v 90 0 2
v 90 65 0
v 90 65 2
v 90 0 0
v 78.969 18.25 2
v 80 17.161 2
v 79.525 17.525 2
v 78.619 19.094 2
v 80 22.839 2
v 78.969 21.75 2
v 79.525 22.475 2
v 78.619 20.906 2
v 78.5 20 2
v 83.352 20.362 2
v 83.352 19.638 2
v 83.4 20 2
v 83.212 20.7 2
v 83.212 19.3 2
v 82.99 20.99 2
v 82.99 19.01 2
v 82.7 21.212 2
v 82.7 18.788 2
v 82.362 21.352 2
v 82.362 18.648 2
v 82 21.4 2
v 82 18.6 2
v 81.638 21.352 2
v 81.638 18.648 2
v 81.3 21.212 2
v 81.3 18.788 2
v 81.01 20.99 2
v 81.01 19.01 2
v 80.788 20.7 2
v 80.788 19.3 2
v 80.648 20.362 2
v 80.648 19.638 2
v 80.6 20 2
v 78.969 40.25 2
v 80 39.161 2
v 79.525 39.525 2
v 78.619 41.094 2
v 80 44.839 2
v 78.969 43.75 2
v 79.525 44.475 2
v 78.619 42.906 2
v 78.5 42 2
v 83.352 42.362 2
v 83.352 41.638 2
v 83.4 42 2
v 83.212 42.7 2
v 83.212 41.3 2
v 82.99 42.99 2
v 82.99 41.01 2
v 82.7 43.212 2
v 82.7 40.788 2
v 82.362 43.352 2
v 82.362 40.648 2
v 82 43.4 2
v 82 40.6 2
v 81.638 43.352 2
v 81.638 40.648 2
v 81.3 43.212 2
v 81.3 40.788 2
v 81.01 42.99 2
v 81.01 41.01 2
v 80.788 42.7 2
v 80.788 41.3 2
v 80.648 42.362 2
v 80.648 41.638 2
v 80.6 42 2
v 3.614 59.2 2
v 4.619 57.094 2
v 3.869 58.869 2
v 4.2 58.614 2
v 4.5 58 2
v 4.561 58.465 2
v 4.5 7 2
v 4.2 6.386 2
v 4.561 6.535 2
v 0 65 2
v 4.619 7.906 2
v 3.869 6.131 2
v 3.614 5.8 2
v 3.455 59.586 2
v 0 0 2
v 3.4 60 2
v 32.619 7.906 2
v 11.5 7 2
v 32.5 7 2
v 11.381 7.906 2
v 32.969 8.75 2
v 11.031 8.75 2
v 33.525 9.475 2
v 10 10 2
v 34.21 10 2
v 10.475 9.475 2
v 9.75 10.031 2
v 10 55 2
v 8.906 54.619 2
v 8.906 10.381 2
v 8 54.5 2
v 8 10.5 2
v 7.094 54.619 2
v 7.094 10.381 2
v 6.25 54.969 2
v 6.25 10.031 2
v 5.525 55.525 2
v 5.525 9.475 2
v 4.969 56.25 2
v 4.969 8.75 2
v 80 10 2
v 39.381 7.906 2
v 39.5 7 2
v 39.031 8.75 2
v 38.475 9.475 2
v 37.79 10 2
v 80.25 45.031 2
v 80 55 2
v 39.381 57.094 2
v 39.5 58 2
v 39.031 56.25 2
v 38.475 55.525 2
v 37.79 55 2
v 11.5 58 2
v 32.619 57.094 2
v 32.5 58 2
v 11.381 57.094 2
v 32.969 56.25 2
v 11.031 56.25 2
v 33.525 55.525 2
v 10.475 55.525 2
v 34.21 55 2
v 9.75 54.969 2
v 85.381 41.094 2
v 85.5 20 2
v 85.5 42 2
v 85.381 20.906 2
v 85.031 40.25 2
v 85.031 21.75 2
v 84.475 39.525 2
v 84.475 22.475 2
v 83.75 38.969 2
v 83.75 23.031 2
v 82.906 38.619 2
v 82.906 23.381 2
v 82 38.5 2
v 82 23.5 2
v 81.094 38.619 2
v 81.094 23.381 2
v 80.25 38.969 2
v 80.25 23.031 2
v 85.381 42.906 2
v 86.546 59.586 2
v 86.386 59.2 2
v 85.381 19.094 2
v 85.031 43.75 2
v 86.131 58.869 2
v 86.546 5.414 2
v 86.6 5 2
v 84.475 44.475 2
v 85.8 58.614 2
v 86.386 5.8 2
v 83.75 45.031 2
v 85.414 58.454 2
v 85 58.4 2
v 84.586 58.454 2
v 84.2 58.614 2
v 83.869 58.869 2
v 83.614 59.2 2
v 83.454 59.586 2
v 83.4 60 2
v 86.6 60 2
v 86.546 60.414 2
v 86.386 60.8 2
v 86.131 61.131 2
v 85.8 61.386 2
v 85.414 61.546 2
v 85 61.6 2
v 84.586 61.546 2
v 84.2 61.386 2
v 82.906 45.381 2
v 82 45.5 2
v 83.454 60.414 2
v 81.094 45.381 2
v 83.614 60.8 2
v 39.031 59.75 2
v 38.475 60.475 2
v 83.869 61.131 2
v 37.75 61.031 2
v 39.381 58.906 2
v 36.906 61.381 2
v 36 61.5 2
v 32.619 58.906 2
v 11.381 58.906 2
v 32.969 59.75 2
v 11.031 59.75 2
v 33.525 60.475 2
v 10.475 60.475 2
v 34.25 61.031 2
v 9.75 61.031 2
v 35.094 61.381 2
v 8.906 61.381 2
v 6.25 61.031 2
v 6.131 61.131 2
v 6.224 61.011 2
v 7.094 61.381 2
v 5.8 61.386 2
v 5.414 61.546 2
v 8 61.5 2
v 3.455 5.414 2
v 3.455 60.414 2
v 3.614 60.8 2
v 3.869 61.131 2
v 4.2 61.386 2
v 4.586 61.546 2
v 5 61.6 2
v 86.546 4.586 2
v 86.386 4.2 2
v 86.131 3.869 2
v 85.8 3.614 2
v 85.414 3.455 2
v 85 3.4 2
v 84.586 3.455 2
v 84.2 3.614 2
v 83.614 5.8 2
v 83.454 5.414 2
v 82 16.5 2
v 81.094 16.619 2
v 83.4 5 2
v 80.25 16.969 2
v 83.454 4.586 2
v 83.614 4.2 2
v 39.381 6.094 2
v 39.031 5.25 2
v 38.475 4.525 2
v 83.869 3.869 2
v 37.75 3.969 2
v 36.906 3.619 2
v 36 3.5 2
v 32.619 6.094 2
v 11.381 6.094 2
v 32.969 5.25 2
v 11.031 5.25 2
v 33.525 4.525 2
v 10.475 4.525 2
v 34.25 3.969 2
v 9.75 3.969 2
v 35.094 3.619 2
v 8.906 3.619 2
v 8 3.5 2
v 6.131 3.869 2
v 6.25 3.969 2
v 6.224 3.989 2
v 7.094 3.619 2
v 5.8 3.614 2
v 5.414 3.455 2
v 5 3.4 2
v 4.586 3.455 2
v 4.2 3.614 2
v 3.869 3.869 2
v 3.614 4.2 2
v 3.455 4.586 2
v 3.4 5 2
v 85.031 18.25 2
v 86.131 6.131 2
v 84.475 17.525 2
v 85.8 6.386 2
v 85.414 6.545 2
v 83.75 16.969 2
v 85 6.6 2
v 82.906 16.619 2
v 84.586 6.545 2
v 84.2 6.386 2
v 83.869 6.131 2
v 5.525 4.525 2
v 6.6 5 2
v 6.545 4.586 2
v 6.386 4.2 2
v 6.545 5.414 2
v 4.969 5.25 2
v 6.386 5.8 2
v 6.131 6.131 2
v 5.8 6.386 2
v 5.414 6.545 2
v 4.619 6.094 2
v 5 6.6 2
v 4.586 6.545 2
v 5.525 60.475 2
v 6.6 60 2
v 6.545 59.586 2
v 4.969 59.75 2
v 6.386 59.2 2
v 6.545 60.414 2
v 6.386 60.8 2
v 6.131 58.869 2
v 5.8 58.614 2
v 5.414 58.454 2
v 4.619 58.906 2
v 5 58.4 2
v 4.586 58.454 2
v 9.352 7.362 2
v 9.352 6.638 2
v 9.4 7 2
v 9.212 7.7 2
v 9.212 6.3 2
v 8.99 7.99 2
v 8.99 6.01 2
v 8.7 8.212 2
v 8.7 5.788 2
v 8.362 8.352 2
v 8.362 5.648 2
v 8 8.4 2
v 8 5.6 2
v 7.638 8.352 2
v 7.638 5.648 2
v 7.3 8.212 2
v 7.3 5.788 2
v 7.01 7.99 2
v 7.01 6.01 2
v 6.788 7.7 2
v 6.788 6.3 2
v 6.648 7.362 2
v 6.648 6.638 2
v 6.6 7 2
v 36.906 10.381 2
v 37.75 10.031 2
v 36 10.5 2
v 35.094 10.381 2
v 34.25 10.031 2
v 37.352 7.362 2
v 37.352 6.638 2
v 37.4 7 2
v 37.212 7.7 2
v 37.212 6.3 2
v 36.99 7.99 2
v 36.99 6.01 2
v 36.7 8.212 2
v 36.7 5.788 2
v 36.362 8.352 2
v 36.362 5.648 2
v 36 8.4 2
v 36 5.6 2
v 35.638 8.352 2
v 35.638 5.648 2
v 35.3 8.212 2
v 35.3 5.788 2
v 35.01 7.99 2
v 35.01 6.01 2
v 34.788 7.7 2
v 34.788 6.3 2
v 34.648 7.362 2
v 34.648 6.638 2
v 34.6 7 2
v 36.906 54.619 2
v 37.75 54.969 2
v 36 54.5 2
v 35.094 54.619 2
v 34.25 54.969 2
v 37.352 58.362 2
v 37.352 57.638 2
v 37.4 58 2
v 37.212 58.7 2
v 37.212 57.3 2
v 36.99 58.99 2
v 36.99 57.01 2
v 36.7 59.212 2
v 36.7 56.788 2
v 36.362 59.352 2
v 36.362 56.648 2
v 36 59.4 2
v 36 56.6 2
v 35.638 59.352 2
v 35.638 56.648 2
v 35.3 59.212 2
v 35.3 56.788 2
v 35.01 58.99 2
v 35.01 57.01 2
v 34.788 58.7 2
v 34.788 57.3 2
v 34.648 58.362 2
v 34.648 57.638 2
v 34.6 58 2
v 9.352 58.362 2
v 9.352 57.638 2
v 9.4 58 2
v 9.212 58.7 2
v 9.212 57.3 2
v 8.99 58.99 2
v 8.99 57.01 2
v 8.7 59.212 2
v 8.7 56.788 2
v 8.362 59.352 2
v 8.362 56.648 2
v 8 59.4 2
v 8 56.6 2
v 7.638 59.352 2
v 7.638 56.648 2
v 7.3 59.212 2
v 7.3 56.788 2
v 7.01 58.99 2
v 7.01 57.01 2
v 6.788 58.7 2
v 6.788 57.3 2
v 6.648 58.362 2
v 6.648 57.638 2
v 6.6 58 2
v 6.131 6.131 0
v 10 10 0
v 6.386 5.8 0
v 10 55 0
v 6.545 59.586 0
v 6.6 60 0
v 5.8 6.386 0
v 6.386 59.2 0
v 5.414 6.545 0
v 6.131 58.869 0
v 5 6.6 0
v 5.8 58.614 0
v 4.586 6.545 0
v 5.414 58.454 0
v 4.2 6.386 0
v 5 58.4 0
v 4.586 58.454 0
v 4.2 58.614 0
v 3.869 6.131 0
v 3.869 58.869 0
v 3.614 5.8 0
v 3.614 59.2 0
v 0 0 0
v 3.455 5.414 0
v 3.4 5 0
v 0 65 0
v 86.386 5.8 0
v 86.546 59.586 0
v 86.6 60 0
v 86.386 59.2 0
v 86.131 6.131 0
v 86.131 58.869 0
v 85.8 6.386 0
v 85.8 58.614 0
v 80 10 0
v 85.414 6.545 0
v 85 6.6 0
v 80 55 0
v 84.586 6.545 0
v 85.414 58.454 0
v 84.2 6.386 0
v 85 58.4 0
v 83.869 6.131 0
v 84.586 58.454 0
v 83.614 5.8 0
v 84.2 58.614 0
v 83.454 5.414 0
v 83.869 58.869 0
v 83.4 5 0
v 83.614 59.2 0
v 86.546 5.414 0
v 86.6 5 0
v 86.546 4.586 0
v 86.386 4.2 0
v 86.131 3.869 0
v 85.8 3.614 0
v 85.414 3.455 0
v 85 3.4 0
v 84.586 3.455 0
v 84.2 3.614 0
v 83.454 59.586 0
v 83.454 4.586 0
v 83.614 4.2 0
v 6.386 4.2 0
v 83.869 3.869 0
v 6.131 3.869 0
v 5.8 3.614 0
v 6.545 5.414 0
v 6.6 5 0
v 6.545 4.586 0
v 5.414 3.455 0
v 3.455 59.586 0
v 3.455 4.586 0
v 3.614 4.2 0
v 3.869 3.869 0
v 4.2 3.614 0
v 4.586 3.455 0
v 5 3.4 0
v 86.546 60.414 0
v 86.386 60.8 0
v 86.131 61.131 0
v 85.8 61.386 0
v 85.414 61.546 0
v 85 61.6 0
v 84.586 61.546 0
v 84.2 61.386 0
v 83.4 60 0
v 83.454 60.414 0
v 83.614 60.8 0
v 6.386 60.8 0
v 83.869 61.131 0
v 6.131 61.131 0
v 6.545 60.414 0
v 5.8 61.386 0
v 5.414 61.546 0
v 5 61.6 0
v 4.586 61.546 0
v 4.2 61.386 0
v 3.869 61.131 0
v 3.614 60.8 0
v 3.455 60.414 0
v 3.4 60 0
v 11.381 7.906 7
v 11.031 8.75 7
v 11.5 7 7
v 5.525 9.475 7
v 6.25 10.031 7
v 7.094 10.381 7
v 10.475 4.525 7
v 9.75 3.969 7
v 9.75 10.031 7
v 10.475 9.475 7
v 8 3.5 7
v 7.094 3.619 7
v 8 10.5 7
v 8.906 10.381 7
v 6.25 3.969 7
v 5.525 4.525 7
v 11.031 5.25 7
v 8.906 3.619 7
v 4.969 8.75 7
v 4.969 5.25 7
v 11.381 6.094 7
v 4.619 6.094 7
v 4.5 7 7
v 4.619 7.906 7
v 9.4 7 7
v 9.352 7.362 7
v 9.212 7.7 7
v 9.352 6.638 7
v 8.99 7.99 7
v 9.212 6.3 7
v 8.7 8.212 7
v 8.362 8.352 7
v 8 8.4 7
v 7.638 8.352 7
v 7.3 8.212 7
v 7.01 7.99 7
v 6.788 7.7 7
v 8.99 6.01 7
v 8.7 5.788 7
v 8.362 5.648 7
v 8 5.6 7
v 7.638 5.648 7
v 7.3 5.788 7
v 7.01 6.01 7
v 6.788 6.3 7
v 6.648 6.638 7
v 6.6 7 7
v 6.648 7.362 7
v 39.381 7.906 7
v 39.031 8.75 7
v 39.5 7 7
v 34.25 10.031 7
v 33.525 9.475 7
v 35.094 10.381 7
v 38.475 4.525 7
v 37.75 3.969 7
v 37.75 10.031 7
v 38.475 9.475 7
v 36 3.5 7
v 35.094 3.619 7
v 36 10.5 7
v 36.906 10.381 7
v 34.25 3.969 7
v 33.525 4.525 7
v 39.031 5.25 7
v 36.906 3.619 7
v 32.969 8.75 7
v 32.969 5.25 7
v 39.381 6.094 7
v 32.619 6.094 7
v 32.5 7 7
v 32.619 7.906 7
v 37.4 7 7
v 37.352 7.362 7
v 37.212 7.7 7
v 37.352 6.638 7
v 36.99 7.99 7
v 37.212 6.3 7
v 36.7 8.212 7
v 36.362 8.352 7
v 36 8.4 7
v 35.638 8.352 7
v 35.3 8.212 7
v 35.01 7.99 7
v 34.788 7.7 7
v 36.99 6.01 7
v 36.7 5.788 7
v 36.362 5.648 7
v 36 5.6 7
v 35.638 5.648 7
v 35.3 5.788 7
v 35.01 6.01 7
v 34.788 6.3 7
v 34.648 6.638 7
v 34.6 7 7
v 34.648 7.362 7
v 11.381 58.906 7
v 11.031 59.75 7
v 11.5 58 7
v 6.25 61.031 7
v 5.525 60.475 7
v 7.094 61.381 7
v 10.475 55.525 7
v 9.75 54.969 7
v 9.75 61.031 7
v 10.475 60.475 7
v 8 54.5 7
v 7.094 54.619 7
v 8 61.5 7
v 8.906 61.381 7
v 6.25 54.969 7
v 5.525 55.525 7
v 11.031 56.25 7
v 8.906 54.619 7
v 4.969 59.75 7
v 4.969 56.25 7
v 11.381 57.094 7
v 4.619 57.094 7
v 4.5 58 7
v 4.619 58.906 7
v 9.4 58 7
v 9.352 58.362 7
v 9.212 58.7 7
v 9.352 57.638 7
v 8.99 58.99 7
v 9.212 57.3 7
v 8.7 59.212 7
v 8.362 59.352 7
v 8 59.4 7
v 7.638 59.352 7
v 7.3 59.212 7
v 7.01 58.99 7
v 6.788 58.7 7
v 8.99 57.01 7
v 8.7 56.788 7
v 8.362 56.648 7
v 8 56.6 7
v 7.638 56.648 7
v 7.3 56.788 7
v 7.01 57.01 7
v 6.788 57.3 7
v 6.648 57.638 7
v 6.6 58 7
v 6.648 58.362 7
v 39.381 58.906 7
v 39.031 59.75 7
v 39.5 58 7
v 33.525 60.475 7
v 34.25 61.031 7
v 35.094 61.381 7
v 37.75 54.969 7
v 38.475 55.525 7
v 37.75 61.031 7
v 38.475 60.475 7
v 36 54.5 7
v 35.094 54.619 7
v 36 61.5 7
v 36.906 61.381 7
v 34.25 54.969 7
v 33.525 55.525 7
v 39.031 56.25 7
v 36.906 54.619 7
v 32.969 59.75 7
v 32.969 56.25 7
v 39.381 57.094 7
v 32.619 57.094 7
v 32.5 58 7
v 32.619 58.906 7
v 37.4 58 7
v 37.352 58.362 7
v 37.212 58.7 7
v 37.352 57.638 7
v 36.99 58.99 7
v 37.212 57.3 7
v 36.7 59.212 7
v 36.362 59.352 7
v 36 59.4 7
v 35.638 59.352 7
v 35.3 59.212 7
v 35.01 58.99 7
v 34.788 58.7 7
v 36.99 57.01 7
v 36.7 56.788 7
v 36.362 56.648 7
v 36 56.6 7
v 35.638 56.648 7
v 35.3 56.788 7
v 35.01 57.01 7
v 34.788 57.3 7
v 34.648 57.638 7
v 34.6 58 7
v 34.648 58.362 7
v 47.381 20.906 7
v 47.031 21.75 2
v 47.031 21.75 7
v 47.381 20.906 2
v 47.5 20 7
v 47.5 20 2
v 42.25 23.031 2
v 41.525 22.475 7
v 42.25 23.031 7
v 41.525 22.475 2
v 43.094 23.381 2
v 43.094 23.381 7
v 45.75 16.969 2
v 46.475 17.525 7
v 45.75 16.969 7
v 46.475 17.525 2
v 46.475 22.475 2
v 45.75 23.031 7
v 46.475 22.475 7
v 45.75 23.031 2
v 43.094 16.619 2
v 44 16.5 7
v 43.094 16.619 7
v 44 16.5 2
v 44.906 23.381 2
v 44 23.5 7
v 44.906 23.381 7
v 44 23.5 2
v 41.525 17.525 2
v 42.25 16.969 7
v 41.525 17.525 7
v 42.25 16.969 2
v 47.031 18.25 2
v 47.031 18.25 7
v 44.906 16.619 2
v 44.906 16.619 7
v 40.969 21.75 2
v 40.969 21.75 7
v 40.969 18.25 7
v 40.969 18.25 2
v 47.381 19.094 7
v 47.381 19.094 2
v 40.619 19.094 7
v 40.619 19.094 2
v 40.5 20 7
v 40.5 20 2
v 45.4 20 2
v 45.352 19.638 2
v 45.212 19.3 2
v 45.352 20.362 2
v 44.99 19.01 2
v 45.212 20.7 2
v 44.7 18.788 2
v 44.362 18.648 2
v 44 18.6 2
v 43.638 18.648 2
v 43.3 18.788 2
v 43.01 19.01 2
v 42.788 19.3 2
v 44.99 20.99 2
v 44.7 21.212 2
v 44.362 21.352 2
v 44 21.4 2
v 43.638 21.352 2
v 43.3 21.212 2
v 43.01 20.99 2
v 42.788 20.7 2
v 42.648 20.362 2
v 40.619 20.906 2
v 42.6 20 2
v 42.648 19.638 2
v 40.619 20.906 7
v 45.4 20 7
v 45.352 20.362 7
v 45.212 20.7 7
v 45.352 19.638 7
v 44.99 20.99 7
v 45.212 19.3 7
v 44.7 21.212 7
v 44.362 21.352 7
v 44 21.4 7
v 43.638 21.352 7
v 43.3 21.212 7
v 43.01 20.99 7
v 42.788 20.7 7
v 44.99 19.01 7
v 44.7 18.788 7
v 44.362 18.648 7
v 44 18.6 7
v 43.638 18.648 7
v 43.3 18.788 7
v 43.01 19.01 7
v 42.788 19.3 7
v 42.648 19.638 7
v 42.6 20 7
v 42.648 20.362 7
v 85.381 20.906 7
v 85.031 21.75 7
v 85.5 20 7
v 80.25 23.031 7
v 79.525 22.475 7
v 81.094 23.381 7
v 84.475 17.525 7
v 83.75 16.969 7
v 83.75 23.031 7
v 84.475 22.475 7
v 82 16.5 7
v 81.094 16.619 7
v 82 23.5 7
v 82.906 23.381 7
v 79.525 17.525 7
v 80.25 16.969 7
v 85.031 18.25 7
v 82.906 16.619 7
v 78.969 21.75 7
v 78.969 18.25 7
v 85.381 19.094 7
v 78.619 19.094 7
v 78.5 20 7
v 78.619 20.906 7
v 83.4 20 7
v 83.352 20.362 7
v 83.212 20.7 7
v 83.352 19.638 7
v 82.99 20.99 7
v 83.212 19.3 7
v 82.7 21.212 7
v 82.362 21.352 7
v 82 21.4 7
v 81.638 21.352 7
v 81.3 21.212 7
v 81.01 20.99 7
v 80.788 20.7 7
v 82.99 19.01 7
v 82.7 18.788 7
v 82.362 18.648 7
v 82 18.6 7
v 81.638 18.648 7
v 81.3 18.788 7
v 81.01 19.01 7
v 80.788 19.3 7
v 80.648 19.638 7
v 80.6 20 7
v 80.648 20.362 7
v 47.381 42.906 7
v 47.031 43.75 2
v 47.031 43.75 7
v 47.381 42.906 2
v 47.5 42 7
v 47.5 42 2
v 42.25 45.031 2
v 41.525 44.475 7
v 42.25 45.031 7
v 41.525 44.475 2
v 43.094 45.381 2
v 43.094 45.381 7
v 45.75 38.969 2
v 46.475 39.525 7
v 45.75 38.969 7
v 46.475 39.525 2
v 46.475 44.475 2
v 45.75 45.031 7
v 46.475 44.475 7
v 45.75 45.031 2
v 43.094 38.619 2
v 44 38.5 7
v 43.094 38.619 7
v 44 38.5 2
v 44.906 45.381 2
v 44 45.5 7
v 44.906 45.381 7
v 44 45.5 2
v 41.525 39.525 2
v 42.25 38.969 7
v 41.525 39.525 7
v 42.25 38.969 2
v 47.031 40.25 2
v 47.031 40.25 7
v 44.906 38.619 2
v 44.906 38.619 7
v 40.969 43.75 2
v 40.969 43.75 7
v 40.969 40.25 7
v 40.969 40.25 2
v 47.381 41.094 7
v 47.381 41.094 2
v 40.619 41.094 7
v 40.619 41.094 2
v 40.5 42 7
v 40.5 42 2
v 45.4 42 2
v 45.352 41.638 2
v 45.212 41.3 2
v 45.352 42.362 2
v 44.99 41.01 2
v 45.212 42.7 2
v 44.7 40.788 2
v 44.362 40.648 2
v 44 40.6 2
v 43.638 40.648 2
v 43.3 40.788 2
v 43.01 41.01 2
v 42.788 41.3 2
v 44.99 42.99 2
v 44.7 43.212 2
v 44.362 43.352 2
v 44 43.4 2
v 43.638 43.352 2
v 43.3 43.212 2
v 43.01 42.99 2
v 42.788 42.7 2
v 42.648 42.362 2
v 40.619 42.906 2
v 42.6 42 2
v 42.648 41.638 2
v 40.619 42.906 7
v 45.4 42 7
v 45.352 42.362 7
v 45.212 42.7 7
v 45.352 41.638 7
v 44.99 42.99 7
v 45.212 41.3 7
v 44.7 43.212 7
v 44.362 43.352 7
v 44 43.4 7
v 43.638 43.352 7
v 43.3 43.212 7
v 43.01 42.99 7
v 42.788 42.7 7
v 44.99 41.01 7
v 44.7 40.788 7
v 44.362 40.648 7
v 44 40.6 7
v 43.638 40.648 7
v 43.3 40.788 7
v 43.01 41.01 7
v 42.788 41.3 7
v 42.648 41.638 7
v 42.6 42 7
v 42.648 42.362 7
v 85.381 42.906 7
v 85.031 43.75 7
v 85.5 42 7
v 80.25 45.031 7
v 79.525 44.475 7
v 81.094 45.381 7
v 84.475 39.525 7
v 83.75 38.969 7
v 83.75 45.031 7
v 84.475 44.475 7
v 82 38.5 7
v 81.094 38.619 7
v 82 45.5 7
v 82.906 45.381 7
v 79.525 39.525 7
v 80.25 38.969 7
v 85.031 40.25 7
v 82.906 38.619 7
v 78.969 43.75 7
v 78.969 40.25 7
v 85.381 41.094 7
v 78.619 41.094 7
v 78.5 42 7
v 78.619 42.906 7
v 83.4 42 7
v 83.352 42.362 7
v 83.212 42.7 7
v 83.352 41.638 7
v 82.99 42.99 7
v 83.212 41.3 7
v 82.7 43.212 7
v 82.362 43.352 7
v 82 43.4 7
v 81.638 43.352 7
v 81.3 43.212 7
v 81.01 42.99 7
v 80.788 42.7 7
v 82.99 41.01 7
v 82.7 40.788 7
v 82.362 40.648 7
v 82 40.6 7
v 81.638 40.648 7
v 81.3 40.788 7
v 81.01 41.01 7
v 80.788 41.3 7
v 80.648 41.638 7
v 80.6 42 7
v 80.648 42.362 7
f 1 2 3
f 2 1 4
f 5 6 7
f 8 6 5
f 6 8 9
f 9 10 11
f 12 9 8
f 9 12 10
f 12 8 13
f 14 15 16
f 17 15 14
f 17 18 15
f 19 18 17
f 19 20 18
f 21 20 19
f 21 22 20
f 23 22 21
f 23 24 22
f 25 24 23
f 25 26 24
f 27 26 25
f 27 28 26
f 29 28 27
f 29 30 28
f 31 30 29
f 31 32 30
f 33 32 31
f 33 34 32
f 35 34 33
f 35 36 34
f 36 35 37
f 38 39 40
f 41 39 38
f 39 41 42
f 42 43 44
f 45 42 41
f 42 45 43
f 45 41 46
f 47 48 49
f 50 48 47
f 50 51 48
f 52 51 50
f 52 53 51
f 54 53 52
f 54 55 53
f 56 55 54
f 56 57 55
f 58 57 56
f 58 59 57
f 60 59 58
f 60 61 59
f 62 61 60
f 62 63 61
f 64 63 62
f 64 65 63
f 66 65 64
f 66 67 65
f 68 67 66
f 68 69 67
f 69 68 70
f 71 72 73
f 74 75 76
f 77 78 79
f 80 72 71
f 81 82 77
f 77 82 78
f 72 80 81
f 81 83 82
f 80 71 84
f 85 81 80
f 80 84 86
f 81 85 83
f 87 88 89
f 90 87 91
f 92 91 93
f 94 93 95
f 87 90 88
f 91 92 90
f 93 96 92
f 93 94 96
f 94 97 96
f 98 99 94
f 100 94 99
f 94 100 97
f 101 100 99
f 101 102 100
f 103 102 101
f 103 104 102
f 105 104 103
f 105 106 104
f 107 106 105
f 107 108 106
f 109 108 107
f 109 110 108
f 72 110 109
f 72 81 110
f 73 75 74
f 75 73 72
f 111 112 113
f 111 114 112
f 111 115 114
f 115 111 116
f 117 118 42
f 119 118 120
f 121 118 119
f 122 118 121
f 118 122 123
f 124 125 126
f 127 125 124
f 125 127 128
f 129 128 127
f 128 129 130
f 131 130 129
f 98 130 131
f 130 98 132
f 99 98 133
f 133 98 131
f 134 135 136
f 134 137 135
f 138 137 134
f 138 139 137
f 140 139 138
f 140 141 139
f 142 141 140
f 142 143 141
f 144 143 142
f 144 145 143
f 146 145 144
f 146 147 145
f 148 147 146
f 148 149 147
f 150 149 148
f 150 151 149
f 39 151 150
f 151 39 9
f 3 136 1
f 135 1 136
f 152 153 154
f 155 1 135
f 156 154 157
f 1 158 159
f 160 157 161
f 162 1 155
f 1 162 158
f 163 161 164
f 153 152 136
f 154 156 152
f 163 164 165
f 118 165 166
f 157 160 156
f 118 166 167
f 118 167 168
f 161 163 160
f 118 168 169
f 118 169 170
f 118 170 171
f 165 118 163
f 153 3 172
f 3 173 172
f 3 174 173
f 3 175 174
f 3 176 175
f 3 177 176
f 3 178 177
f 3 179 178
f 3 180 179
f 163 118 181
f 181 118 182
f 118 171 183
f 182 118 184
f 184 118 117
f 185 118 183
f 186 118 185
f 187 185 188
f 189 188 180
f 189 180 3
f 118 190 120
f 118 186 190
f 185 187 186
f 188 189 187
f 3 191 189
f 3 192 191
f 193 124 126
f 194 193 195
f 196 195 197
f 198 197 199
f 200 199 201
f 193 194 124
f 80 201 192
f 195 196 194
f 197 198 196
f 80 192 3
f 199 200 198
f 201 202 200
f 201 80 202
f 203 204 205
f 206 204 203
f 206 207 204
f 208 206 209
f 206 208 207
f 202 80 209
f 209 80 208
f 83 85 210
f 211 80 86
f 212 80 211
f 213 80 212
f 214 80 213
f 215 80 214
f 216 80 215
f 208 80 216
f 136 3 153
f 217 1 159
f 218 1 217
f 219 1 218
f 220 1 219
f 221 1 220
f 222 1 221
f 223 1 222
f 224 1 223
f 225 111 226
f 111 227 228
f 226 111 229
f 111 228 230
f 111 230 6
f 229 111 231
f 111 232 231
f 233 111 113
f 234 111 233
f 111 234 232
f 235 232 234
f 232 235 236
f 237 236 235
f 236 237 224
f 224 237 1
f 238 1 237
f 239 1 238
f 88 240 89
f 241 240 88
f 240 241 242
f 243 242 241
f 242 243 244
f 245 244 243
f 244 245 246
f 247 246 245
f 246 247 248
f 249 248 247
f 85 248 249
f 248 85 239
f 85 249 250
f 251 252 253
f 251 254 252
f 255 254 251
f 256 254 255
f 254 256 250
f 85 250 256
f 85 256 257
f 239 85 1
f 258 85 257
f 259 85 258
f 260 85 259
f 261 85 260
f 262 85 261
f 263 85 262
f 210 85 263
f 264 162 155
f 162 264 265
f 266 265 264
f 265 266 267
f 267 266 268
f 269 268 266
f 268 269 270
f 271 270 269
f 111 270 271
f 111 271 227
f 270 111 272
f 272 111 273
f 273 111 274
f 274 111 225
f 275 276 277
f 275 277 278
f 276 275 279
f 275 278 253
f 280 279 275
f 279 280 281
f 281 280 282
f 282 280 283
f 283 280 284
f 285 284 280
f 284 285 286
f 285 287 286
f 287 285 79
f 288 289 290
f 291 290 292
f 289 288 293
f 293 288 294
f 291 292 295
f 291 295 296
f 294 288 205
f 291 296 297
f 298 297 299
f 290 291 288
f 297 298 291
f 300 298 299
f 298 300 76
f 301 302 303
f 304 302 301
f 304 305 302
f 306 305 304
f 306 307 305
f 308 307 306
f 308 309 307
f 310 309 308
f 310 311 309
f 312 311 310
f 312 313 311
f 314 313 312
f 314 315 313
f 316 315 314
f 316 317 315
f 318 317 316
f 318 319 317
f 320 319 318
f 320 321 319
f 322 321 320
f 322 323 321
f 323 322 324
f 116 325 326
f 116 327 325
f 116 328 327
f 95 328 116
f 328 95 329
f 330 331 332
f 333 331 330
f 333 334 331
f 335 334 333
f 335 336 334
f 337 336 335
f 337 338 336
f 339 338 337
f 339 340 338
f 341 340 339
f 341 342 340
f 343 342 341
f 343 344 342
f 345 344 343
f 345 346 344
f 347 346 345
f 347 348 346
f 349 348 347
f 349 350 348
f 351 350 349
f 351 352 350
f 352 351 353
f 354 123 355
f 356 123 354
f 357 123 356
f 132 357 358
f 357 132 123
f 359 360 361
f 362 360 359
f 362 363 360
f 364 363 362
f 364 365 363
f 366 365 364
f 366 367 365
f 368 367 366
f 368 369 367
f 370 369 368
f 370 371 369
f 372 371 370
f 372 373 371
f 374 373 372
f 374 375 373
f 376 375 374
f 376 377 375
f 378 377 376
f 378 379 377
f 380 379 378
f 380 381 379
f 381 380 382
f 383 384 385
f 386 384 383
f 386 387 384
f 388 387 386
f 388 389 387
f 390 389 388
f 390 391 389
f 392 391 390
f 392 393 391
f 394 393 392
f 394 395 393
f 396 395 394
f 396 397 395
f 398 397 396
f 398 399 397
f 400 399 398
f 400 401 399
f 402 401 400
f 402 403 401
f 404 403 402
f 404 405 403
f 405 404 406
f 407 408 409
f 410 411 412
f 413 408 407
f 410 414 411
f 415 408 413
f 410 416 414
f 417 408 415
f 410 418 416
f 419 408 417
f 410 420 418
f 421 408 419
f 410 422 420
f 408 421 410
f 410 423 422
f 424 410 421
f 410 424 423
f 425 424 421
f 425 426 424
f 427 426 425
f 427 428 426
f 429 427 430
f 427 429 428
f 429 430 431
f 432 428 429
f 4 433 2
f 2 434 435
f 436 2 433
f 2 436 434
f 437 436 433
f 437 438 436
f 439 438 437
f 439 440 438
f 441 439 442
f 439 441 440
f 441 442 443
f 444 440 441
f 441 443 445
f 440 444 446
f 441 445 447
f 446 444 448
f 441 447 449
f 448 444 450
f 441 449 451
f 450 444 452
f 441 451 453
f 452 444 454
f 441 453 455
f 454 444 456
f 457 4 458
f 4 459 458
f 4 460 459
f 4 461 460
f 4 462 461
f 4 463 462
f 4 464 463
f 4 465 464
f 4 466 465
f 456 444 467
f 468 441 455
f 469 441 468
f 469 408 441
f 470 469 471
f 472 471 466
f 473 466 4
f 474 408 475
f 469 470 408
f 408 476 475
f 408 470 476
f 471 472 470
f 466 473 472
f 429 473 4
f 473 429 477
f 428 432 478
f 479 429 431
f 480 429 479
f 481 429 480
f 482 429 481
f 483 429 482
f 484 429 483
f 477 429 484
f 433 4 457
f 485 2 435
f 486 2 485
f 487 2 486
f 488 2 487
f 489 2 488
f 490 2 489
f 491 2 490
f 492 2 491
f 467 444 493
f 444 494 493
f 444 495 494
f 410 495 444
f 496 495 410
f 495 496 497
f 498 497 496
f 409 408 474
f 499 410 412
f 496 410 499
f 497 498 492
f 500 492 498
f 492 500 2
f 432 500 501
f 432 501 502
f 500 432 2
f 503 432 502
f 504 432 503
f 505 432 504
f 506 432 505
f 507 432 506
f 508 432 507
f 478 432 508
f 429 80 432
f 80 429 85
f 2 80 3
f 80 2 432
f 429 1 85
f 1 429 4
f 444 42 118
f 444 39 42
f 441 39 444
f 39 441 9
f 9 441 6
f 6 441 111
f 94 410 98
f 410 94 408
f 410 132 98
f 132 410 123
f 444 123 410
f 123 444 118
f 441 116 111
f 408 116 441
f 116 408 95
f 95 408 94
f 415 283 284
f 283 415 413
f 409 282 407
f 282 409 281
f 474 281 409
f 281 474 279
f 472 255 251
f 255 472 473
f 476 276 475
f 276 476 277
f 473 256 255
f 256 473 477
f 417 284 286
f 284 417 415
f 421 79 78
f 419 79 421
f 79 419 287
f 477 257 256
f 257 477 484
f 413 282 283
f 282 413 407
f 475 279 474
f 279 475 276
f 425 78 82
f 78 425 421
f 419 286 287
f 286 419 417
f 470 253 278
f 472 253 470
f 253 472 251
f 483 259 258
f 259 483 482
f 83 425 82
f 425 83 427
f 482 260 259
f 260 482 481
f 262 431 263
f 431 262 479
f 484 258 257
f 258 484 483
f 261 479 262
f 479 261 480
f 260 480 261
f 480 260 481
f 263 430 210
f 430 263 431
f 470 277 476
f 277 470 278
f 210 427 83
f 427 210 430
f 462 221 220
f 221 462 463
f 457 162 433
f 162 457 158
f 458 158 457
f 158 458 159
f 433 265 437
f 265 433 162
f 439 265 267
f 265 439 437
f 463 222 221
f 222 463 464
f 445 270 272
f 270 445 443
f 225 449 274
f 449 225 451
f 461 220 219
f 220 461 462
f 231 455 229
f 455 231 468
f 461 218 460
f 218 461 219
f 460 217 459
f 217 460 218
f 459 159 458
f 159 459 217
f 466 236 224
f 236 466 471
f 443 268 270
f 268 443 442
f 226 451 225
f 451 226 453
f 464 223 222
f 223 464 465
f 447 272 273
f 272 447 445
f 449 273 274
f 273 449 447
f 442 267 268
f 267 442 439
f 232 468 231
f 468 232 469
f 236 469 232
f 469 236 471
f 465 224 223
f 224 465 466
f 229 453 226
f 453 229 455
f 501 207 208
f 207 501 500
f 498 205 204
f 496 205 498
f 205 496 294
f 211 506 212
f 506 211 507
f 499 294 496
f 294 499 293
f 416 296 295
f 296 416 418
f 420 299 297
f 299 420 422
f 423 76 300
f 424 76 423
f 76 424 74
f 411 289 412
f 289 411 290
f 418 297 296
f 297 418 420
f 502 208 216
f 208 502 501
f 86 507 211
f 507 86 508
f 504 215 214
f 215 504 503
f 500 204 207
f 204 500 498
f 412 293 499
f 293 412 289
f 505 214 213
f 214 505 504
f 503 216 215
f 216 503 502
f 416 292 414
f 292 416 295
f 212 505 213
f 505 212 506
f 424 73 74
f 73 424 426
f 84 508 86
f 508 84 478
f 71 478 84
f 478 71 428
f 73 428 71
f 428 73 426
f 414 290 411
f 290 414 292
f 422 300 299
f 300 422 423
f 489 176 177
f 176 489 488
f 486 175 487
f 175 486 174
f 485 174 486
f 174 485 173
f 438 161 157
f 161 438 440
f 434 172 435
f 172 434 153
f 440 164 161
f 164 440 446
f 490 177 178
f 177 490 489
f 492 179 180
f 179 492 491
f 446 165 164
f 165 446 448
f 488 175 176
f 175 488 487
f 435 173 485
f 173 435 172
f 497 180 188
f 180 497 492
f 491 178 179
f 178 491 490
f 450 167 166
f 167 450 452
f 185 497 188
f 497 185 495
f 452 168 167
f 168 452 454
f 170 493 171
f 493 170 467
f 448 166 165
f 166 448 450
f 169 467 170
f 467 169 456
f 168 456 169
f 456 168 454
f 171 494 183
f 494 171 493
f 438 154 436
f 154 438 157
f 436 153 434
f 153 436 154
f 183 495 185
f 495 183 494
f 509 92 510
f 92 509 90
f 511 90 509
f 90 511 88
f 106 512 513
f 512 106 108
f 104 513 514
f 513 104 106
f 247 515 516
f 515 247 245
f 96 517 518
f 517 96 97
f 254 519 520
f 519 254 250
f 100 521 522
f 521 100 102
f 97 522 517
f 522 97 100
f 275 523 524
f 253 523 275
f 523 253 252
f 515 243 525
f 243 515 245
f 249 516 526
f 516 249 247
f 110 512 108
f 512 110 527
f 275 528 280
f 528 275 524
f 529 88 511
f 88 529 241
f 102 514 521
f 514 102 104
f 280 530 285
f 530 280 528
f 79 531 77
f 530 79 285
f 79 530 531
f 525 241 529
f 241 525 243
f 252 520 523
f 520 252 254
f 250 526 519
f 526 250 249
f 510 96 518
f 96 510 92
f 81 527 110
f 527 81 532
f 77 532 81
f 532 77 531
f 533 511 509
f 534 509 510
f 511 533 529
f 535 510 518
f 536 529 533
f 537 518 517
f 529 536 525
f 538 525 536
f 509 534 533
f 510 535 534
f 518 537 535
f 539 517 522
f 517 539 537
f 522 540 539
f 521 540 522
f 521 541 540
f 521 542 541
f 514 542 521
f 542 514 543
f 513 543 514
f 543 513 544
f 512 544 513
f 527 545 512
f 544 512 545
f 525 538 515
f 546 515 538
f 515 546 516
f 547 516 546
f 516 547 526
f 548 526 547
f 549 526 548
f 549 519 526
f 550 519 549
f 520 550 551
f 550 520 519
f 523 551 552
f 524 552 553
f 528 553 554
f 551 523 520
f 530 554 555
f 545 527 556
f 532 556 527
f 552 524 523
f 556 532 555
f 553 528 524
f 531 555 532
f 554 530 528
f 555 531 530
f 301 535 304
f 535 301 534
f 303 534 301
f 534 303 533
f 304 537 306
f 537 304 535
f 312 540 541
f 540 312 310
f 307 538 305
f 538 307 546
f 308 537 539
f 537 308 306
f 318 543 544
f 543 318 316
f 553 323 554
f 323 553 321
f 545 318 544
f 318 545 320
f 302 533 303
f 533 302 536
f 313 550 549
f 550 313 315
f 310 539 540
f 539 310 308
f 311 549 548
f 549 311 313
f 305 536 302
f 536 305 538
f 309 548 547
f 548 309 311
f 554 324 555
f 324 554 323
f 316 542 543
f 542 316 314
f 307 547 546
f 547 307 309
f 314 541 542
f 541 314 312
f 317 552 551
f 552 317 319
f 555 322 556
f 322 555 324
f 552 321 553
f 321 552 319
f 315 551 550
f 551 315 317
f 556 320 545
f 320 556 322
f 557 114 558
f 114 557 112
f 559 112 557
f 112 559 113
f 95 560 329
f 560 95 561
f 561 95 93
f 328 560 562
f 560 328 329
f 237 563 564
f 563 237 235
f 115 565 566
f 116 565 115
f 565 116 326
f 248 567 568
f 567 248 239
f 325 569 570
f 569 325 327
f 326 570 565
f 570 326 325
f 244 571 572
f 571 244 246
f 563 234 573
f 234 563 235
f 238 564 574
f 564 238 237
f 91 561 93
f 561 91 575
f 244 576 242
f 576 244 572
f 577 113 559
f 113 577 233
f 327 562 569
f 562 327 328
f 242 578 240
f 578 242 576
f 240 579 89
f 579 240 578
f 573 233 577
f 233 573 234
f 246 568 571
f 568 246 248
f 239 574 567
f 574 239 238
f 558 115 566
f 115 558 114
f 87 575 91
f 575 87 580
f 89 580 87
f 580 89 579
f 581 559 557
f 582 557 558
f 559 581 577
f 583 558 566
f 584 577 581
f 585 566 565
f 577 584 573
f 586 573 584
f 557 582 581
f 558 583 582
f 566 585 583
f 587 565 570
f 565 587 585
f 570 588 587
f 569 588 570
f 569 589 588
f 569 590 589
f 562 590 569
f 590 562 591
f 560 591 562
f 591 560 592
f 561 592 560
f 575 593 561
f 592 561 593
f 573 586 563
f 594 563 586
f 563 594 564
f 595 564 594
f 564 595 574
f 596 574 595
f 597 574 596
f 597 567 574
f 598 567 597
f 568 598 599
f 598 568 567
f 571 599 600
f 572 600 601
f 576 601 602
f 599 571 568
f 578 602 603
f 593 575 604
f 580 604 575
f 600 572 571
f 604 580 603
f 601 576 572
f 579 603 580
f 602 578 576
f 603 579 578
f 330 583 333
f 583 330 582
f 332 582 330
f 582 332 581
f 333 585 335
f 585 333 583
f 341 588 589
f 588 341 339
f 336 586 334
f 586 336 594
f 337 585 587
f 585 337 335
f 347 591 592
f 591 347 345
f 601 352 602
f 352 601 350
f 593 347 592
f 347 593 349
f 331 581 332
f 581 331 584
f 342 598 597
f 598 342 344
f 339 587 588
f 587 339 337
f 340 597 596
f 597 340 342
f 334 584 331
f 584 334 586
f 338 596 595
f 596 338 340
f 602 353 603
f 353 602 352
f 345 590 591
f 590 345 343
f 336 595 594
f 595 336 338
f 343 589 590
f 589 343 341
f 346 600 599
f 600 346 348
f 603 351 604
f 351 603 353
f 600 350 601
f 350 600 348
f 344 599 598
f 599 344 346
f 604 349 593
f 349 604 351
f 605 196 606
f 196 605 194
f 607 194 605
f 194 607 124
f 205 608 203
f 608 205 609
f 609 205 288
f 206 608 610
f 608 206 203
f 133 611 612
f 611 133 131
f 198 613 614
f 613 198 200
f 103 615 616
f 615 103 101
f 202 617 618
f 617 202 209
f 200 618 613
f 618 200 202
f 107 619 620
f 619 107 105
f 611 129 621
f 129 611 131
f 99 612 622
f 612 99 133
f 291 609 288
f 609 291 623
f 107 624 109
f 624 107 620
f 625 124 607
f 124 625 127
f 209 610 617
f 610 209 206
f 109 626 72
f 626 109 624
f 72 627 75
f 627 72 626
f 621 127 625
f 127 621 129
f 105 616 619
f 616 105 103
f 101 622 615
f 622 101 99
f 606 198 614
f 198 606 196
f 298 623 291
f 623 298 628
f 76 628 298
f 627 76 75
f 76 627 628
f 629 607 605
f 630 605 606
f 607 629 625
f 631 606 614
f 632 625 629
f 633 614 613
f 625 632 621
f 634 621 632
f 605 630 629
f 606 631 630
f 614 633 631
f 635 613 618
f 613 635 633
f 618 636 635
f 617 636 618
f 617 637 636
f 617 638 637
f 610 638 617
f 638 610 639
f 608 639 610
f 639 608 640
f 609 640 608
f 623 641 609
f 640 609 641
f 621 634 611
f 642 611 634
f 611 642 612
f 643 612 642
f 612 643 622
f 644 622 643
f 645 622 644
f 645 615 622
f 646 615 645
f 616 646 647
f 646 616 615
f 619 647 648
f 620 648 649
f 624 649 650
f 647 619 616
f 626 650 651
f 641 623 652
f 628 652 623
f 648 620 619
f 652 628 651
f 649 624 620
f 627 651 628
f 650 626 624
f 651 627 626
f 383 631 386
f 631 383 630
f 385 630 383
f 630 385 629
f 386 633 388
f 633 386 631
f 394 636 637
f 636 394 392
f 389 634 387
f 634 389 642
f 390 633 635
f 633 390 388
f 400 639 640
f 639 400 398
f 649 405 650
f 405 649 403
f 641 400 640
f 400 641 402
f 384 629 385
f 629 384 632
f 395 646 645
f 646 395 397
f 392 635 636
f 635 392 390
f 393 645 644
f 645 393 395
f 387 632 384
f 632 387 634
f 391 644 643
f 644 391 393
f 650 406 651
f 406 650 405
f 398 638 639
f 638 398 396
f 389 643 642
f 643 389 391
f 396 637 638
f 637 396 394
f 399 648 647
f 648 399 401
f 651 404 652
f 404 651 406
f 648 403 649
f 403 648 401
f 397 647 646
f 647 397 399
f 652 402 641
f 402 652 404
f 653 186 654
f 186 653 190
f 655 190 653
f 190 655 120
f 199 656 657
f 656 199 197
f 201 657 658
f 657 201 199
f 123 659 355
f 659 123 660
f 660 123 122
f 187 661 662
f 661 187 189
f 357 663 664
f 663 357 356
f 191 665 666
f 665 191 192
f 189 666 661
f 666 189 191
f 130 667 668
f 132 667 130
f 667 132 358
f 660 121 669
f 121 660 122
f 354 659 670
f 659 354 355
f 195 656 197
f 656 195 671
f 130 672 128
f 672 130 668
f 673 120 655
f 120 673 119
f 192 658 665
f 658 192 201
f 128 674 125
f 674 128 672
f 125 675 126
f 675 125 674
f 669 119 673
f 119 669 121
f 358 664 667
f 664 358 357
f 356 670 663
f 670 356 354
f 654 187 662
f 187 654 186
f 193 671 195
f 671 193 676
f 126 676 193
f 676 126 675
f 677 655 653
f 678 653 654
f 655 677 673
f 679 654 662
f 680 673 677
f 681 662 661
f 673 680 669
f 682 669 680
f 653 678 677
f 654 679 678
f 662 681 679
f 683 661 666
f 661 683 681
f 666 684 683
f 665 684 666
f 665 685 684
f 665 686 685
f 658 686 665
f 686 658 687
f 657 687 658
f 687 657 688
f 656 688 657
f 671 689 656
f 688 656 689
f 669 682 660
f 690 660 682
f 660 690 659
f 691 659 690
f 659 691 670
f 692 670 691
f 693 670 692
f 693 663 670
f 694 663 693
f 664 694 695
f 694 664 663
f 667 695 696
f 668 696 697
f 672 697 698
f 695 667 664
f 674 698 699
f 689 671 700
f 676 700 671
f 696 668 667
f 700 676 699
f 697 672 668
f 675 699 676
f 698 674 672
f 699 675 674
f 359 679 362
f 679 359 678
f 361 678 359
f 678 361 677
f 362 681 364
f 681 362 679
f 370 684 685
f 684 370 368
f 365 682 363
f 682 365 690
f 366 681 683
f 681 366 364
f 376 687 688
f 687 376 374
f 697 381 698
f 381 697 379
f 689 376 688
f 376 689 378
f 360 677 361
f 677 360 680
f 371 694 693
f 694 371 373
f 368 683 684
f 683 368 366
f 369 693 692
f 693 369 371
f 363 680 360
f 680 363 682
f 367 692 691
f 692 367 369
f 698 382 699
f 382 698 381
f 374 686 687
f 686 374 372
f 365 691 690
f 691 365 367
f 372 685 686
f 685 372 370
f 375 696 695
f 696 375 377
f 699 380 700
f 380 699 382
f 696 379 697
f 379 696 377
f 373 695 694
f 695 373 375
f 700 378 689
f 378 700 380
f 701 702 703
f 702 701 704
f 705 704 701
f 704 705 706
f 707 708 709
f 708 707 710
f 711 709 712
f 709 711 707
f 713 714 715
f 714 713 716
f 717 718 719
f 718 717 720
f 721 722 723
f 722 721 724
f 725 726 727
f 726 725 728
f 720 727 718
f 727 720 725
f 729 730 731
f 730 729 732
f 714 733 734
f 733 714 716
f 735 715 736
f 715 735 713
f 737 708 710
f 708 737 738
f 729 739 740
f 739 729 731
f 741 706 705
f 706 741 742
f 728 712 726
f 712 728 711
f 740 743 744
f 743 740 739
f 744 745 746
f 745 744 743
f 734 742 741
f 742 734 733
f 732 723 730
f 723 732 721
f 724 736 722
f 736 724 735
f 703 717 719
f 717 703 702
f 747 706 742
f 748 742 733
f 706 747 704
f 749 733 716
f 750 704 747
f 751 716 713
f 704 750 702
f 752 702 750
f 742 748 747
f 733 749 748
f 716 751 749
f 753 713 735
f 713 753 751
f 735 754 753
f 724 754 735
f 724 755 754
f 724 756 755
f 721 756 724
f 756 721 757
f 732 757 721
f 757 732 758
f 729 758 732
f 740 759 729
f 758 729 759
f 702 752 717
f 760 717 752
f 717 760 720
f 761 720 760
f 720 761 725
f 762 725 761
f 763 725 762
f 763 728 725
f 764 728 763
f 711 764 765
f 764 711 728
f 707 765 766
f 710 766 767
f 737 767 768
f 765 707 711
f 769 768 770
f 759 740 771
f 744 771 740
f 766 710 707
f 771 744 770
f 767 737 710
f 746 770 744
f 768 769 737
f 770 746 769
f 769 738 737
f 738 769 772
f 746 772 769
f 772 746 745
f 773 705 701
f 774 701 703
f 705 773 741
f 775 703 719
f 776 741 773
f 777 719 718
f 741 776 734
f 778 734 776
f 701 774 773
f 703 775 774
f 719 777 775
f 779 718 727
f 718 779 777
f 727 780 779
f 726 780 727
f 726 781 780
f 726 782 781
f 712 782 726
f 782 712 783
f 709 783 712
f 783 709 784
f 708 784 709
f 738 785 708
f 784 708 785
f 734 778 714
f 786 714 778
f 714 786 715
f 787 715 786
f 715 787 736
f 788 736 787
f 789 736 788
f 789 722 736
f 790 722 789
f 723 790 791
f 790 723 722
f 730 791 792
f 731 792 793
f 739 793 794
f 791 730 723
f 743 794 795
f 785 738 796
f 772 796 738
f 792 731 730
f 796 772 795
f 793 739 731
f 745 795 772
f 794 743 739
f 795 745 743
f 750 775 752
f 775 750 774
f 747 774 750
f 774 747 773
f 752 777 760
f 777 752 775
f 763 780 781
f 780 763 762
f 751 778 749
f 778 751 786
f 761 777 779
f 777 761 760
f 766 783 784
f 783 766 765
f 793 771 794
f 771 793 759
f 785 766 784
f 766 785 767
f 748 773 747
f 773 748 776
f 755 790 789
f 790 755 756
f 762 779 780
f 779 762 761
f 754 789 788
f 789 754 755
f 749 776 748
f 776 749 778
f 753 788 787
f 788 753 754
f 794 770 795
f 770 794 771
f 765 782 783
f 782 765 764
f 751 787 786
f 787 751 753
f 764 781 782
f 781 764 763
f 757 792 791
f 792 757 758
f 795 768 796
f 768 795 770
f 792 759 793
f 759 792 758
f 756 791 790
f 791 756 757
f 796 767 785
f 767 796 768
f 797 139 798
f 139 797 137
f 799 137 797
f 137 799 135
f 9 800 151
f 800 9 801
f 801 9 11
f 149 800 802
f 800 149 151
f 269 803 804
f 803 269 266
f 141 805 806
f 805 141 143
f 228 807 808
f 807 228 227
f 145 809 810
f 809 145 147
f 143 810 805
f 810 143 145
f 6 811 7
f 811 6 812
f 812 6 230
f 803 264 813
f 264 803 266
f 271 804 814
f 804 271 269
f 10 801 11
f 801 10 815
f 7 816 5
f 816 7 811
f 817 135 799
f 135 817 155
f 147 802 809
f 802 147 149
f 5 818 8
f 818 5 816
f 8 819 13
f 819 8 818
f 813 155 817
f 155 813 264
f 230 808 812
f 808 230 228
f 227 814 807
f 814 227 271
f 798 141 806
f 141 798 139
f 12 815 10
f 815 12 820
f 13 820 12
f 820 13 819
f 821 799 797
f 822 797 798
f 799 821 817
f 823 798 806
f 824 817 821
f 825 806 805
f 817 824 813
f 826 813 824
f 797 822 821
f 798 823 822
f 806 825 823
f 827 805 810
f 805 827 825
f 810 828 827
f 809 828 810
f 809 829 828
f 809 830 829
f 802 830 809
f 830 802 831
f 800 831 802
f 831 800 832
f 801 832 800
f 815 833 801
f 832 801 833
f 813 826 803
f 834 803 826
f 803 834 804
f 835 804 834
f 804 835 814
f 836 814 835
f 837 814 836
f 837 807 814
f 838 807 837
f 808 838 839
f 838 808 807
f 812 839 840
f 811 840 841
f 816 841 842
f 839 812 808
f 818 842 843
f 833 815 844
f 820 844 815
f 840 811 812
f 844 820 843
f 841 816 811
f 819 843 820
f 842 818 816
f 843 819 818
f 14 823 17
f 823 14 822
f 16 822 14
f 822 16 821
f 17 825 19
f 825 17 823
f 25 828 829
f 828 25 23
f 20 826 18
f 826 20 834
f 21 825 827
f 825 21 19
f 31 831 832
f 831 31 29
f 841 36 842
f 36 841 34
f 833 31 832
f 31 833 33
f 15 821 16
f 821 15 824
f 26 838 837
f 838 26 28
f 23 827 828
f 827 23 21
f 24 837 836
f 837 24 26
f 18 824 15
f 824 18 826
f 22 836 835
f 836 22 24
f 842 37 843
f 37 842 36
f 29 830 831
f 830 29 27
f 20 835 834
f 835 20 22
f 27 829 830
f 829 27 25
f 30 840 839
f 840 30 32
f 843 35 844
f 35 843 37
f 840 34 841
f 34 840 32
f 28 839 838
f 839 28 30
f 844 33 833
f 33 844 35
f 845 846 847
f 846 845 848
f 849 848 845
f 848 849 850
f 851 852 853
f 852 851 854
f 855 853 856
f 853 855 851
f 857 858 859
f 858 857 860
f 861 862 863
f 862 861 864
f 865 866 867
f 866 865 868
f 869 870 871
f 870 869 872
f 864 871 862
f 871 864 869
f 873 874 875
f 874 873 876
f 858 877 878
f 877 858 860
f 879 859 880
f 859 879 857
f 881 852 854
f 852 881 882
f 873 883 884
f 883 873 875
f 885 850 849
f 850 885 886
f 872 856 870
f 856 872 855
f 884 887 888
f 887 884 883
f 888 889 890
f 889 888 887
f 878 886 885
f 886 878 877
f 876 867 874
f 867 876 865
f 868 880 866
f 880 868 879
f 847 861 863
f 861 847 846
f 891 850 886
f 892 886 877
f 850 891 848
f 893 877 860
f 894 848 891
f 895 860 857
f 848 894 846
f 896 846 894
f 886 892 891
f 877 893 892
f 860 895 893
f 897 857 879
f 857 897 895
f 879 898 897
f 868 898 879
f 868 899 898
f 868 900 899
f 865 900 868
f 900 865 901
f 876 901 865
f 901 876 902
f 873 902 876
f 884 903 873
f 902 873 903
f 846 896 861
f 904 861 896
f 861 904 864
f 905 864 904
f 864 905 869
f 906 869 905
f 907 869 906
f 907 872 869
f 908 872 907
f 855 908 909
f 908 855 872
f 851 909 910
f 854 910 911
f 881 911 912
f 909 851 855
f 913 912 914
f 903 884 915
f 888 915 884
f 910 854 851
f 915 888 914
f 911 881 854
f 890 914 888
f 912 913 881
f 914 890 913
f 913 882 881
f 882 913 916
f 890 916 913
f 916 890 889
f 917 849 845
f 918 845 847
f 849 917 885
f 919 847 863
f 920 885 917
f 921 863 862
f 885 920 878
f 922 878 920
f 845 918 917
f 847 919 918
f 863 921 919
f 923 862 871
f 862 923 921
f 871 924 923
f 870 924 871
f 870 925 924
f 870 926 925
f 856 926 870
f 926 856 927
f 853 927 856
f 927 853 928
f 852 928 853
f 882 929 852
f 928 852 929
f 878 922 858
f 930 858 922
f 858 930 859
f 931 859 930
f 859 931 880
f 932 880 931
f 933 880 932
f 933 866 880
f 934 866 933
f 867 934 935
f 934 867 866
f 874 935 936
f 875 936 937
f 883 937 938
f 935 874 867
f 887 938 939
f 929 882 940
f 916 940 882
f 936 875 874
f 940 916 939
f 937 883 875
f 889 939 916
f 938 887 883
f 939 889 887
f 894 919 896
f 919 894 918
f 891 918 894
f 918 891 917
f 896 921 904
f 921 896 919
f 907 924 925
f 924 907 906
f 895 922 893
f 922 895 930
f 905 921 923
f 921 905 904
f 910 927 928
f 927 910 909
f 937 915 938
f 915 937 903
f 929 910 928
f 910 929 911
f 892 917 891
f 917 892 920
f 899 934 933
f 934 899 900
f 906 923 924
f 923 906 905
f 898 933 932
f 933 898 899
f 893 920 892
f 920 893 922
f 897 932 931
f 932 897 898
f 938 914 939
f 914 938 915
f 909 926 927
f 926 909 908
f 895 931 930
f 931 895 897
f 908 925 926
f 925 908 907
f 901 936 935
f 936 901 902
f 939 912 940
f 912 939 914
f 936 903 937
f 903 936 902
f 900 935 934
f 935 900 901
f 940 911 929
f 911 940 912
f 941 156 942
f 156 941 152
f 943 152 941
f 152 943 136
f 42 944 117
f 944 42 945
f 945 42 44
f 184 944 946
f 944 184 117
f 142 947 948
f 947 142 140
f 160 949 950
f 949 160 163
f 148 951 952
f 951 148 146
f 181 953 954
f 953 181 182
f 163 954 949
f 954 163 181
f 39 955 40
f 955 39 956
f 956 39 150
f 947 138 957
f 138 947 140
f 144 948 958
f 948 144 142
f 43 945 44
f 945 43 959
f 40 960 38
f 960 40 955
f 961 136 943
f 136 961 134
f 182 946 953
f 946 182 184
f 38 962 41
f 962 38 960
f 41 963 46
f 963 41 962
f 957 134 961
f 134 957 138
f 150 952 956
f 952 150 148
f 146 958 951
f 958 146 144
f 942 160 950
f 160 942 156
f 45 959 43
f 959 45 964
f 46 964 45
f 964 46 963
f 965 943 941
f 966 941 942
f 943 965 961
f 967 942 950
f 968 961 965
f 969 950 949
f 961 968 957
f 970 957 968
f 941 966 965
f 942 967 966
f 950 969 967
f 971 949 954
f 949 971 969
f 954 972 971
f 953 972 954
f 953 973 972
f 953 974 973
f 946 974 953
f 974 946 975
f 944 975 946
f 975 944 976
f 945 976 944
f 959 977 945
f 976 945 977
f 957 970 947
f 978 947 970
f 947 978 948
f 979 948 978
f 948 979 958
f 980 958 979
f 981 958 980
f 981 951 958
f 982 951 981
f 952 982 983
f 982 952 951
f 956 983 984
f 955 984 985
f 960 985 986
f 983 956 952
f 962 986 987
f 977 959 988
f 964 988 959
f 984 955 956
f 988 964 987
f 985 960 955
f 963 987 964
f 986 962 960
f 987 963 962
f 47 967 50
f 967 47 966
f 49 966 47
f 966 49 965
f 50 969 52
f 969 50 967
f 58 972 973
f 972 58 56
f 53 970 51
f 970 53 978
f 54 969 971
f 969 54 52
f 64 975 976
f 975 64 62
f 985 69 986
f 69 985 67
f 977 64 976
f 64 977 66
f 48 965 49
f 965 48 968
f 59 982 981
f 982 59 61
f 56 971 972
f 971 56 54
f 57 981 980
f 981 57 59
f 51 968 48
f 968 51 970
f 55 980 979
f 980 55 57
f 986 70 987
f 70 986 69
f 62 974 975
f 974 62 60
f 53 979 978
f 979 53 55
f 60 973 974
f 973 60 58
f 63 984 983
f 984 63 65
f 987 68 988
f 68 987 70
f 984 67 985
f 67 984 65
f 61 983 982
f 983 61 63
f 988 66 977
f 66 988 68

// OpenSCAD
// ==============================================================================
// WORDCLOCK ESP32 - OPCION 1: SOPORTE DE ELECTRONICA INDEPENDIENTE
// PIEZA 4: BANDEJA DE MONTAJE PARA ESP32 + MODULO RTC DS1307
// ==============================================================================

tray_w     = 90.0;
tray_h     = 65.0;
tray_thick = 2.0;
standoff_h = 5.0;

module m3_boss(h = 5.0) {
    difference() {
        cylinder(r = 3.5, h = h, $fn = 24);
        translate([0, 0, -0.1]) cylinder(r = 1.4, h = h + 0.2, $fn = 24);
    }
}

module wordclock_electronics_mount() {
    union() {
        difference() {
            cube([tray_w, tray_h, tray_thick]);

            translate([10, 10, -0.1]) {
                cube([tray_w - 20, tray_h - 20, tray_thick + 0.2]);
            }

            translate([5, 5, -0.1])           cylinder(r = 1.6, h = tray_thick + 0.2, $fn = 24);
            translate([tray_w - 5, 5, -0.1])   cylinder(r = 1.6, h = tray_thick + 0.2, $fn = 24);
            translate([5, tray_h - 5, -0.1])  cylinder(r = 1.6, h = tray_thick + 0.2, $fn = 24);
            translate([tray_w - 5, tray_h - 5, -0.1]) cylinder(r = 1.6, h = tray_thick + 0.2, $fn = 24);
        }

        esp32_x = 8;
        esp32_y = 7;
        translate([esp32_x, esp32_y, tray_thick]) {
            m3_boss(standoff_h);
            translate([28, 0, 0])  m3_boss(standoff_h);
            translate([0, 51, 0])  m3_boss(standoff_h);
            translate([28, 51, 0]) m3_boss(standoff_h);
        }

        rtc_x = 44;
        rtc_y = 20;
        translate([rtc_x, rtc_y, tray_thick]) {
            m3_boss(standoff_h);
            translate([38, 0, 0])  m3_boss(standoff_h);
            translate([0, 22, 0])  m3_boss(standoff_h);
            translate([38, 22, 0]) m3_boss(standoff_h);
        }
    }
}

wordclock_electronics_mount();
